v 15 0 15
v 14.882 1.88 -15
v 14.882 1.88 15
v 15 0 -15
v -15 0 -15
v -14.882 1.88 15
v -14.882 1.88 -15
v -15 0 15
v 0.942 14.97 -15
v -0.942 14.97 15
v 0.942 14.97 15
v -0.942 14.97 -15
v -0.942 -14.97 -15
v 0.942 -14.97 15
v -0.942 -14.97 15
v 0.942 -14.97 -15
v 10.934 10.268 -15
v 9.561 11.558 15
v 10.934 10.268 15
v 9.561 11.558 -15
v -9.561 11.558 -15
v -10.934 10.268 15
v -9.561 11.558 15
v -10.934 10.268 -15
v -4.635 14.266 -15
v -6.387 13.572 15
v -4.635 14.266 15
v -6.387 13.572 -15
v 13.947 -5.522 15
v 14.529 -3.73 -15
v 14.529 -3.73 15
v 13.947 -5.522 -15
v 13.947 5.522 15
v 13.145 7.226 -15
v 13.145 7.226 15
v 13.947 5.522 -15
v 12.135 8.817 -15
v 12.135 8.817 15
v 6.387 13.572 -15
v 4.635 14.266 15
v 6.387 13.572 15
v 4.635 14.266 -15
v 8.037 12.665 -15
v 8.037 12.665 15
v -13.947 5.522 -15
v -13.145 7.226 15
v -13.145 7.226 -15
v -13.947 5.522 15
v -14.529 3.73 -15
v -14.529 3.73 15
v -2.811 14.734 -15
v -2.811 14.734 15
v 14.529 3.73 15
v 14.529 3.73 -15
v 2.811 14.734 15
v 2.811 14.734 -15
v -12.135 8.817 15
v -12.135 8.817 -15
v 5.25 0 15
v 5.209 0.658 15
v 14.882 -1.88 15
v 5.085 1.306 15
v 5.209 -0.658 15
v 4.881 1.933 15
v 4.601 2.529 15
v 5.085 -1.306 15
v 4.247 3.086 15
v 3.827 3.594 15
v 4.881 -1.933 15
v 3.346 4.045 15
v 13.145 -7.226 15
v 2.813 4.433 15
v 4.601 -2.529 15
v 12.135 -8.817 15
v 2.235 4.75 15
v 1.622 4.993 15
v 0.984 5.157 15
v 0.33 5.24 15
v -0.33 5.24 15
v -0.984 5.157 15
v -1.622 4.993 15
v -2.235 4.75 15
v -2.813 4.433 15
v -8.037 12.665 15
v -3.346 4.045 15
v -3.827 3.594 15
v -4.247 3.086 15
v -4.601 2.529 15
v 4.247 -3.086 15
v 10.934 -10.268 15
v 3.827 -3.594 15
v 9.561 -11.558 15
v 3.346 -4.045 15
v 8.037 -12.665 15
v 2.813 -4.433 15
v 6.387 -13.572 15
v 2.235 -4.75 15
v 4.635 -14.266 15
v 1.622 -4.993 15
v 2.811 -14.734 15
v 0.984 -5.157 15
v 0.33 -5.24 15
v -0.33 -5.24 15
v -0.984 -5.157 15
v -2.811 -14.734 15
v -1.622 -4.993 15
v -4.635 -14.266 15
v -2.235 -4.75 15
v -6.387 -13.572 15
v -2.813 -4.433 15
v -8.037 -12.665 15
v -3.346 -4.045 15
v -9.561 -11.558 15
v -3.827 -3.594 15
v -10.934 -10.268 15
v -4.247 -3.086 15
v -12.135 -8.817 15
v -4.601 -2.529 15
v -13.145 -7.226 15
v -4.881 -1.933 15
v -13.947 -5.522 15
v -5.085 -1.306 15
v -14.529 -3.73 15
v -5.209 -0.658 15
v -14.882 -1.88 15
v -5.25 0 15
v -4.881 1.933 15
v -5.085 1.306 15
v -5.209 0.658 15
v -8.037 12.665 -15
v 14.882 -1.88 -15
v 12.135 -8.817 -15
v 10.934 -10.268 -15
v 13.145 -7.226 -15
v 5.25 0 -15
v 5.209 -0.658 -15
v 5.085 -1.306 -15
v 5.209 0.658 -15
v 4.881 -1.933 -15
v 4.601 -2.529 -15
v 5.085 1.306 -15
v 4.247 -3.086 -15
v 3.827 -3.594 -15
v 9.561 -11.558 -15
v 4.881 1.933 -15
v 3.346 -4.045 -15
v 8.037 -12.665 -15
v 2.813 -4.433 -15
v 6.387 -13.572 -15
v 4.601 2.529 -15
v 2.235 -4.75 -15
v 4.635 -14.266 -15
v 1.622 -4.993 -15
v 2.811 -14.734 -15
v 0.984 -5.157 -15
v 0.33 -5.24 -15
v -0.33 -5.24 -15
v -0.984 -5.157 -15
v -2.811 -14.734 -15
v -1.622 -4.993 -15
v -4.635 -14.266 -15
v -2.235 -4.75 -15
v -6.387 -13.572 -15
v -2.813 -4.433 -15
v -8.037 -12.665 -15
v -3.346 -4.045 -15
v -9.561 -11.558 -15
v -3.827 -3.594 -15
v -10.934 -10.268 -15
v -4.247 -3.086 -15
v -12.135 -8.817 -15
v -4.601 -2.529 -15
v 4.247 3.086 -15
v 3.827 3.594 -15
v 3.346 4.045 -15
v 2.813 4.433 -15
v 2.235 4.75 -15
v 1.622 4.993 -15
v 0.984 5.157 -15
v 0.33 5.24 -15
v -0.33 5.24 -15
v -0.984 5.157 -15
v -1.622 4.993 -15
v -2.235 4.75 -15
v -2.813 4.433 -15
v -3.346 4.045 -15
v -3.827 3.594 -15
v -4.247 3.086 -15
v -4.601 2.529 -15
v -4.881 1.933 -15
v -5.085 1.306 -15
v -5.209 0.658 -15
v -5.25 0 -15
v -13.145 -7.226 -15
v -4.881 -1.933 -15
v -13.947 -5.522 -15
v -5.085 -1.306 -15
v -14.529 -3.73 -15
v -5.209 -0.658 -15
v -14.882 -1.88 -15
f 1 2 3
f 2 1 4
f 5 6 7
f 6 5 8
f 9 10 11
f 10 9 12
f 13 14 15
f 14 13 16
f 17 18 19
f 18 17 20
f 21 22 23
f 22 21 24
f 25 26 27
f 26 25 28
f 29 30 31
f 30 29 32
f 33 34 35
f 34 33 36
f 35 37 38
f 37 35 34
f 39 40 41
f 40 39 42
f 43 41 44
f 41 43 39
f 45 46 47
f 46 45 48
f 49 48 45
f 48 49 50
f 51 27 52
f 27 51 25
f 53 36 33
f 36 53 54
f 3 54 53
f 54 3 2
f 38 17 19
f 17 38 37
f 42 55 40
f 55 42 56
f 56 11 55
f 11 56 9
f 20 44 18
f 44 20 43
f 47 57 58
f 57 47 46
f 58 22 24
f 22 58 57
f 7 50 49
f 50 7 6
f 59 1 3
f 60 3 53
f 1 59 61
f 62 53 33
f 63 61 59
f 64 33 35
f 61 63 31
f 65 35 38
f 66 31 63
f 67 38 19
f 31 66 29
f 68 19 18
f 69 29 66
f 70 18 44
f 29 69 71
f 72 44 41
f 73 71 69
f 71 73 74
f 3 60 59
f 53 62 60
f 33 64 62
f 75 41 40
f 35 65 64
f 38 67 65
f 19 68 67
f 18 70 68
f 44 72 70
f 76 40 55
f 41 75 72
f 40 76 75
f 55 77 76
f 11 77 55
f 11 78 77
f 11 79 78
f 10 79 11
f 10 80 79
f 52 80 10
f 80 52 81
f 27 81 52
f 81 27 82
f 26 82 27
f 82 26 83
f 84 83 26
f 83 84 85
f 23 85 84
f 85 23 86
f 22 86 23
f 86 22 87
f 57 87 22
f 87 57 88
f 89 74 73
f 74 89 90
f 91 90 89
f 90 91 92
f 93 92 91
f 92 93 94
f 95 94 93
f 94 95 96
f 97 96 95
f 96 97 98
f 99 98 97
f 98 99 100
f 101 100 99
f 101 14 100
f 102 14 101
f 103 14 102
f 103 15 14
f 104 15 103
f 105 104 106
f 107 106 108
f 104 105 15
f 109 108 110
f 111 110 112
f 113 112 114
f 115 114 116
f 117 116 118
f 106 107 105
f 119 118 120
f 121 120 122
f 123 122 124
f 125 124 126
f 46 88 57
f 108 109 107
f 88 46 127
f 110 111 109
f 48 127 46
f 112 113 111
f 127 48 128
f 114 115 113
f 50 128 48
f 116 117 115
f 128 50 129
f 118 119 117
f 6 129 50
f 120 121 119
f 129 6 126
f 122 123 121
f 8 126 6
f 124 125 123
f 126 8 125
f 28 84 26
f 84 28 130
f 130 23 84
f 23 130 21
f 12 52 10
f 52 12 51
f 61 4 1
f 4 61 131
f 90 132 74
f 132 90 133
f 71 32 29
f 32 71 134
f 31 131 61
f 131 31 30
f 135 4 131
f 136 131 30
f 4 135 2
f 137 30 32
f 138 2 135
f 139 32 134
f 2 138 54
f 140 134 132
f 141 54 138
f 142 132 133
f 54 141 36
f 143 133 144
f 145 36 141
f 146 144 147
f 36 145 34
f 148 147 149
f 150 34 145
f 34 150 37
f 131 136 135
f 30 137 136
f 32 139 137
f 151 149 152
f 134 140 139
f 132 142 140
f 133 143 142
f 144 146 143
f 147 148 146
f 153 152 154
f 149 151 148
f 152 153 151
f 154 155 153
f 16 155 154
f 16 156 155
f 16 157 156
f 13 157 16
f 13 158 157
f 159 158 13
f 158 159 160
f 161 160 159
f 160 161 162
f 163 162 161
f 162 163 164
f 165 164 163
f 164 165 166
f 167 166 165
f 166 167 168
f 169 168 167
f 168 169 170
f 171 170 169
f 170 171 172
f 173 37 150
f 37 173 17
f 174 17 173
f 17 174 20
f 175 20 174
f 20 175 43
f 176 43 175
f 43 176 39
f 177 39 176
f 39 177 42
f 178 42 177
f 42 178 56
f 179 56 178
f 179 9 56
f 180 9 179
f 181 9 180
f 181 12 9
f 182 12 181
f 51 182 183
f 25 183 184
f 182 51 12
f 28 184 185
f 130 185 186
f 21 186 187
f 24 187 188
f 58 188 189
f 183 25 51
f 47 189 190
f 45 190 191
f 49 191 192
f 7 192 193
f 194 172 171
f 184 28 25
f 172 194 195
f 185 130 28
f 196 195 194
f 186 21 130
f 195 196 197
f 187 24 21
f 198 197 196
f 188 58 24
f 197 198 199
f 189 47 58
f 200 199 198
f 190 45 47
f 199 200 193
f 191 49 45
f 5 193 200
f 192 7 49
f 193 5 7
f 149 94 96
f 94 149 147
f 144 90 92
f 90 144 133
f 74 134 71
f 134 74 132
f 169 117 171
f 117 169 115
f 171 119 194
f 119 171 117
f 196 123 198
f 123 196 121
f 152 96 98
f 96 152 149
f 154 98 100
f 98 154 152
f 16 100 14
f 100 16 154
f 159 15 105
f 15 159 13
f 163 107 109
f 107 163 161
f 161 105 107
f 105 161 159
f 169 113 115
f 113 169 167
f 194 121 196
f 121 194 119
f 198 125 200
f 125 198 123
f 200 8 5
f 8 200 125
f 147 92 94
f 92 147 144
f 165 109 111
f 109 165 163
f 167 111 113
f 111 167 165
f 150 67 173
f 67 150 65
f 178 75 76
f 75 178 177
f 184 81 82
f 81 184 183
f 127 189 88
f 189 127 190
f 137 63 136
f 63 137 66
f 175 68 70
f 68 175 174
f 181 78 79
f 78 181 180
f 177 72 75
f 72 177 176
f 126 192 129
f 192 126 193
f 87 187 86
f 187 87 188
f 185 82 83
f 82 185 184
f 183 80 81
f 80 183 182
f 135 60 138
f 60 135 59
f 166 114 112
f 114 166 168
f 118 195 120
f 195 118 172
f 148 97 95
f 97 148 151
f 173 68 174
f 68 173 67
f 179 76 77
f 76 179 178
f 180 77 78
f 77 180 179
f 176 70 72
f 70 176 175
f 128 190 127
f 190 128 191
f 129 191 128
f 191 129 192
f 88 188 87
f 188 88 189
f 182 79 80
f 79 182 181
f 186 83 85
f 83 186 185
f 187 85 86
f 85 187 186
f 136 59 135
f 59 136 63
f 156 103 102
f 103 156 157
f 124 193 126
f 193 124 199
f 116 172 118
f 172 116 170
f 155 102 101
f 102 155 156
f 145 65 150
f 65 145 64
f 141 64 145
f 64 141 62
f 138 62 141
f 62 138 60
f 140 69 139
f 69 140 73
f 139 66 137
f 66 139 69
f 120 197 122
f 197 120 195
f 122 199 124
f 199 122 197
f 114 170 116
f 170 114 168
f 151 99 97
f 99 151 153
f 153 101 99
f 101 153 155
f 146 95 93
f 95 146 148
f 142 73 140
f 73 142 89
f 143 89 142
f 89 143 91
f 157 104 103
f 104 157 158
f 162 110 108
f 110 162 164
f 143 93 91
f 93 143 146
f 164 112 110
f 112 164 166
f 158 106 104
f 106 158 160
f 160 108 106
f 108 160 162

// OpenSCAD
$fn = 50;


difference() {
	union() {
		translate(v = [0, 0, -15.0000000000]) {
			cylinder(h = 30, r = 15.0000000000);
		}
	}
	union() {
		translate(v = [0, 0, -100.0000000000]) {
			cylinder(h = 200, r = 5.2500000000);
		}
	}
}
